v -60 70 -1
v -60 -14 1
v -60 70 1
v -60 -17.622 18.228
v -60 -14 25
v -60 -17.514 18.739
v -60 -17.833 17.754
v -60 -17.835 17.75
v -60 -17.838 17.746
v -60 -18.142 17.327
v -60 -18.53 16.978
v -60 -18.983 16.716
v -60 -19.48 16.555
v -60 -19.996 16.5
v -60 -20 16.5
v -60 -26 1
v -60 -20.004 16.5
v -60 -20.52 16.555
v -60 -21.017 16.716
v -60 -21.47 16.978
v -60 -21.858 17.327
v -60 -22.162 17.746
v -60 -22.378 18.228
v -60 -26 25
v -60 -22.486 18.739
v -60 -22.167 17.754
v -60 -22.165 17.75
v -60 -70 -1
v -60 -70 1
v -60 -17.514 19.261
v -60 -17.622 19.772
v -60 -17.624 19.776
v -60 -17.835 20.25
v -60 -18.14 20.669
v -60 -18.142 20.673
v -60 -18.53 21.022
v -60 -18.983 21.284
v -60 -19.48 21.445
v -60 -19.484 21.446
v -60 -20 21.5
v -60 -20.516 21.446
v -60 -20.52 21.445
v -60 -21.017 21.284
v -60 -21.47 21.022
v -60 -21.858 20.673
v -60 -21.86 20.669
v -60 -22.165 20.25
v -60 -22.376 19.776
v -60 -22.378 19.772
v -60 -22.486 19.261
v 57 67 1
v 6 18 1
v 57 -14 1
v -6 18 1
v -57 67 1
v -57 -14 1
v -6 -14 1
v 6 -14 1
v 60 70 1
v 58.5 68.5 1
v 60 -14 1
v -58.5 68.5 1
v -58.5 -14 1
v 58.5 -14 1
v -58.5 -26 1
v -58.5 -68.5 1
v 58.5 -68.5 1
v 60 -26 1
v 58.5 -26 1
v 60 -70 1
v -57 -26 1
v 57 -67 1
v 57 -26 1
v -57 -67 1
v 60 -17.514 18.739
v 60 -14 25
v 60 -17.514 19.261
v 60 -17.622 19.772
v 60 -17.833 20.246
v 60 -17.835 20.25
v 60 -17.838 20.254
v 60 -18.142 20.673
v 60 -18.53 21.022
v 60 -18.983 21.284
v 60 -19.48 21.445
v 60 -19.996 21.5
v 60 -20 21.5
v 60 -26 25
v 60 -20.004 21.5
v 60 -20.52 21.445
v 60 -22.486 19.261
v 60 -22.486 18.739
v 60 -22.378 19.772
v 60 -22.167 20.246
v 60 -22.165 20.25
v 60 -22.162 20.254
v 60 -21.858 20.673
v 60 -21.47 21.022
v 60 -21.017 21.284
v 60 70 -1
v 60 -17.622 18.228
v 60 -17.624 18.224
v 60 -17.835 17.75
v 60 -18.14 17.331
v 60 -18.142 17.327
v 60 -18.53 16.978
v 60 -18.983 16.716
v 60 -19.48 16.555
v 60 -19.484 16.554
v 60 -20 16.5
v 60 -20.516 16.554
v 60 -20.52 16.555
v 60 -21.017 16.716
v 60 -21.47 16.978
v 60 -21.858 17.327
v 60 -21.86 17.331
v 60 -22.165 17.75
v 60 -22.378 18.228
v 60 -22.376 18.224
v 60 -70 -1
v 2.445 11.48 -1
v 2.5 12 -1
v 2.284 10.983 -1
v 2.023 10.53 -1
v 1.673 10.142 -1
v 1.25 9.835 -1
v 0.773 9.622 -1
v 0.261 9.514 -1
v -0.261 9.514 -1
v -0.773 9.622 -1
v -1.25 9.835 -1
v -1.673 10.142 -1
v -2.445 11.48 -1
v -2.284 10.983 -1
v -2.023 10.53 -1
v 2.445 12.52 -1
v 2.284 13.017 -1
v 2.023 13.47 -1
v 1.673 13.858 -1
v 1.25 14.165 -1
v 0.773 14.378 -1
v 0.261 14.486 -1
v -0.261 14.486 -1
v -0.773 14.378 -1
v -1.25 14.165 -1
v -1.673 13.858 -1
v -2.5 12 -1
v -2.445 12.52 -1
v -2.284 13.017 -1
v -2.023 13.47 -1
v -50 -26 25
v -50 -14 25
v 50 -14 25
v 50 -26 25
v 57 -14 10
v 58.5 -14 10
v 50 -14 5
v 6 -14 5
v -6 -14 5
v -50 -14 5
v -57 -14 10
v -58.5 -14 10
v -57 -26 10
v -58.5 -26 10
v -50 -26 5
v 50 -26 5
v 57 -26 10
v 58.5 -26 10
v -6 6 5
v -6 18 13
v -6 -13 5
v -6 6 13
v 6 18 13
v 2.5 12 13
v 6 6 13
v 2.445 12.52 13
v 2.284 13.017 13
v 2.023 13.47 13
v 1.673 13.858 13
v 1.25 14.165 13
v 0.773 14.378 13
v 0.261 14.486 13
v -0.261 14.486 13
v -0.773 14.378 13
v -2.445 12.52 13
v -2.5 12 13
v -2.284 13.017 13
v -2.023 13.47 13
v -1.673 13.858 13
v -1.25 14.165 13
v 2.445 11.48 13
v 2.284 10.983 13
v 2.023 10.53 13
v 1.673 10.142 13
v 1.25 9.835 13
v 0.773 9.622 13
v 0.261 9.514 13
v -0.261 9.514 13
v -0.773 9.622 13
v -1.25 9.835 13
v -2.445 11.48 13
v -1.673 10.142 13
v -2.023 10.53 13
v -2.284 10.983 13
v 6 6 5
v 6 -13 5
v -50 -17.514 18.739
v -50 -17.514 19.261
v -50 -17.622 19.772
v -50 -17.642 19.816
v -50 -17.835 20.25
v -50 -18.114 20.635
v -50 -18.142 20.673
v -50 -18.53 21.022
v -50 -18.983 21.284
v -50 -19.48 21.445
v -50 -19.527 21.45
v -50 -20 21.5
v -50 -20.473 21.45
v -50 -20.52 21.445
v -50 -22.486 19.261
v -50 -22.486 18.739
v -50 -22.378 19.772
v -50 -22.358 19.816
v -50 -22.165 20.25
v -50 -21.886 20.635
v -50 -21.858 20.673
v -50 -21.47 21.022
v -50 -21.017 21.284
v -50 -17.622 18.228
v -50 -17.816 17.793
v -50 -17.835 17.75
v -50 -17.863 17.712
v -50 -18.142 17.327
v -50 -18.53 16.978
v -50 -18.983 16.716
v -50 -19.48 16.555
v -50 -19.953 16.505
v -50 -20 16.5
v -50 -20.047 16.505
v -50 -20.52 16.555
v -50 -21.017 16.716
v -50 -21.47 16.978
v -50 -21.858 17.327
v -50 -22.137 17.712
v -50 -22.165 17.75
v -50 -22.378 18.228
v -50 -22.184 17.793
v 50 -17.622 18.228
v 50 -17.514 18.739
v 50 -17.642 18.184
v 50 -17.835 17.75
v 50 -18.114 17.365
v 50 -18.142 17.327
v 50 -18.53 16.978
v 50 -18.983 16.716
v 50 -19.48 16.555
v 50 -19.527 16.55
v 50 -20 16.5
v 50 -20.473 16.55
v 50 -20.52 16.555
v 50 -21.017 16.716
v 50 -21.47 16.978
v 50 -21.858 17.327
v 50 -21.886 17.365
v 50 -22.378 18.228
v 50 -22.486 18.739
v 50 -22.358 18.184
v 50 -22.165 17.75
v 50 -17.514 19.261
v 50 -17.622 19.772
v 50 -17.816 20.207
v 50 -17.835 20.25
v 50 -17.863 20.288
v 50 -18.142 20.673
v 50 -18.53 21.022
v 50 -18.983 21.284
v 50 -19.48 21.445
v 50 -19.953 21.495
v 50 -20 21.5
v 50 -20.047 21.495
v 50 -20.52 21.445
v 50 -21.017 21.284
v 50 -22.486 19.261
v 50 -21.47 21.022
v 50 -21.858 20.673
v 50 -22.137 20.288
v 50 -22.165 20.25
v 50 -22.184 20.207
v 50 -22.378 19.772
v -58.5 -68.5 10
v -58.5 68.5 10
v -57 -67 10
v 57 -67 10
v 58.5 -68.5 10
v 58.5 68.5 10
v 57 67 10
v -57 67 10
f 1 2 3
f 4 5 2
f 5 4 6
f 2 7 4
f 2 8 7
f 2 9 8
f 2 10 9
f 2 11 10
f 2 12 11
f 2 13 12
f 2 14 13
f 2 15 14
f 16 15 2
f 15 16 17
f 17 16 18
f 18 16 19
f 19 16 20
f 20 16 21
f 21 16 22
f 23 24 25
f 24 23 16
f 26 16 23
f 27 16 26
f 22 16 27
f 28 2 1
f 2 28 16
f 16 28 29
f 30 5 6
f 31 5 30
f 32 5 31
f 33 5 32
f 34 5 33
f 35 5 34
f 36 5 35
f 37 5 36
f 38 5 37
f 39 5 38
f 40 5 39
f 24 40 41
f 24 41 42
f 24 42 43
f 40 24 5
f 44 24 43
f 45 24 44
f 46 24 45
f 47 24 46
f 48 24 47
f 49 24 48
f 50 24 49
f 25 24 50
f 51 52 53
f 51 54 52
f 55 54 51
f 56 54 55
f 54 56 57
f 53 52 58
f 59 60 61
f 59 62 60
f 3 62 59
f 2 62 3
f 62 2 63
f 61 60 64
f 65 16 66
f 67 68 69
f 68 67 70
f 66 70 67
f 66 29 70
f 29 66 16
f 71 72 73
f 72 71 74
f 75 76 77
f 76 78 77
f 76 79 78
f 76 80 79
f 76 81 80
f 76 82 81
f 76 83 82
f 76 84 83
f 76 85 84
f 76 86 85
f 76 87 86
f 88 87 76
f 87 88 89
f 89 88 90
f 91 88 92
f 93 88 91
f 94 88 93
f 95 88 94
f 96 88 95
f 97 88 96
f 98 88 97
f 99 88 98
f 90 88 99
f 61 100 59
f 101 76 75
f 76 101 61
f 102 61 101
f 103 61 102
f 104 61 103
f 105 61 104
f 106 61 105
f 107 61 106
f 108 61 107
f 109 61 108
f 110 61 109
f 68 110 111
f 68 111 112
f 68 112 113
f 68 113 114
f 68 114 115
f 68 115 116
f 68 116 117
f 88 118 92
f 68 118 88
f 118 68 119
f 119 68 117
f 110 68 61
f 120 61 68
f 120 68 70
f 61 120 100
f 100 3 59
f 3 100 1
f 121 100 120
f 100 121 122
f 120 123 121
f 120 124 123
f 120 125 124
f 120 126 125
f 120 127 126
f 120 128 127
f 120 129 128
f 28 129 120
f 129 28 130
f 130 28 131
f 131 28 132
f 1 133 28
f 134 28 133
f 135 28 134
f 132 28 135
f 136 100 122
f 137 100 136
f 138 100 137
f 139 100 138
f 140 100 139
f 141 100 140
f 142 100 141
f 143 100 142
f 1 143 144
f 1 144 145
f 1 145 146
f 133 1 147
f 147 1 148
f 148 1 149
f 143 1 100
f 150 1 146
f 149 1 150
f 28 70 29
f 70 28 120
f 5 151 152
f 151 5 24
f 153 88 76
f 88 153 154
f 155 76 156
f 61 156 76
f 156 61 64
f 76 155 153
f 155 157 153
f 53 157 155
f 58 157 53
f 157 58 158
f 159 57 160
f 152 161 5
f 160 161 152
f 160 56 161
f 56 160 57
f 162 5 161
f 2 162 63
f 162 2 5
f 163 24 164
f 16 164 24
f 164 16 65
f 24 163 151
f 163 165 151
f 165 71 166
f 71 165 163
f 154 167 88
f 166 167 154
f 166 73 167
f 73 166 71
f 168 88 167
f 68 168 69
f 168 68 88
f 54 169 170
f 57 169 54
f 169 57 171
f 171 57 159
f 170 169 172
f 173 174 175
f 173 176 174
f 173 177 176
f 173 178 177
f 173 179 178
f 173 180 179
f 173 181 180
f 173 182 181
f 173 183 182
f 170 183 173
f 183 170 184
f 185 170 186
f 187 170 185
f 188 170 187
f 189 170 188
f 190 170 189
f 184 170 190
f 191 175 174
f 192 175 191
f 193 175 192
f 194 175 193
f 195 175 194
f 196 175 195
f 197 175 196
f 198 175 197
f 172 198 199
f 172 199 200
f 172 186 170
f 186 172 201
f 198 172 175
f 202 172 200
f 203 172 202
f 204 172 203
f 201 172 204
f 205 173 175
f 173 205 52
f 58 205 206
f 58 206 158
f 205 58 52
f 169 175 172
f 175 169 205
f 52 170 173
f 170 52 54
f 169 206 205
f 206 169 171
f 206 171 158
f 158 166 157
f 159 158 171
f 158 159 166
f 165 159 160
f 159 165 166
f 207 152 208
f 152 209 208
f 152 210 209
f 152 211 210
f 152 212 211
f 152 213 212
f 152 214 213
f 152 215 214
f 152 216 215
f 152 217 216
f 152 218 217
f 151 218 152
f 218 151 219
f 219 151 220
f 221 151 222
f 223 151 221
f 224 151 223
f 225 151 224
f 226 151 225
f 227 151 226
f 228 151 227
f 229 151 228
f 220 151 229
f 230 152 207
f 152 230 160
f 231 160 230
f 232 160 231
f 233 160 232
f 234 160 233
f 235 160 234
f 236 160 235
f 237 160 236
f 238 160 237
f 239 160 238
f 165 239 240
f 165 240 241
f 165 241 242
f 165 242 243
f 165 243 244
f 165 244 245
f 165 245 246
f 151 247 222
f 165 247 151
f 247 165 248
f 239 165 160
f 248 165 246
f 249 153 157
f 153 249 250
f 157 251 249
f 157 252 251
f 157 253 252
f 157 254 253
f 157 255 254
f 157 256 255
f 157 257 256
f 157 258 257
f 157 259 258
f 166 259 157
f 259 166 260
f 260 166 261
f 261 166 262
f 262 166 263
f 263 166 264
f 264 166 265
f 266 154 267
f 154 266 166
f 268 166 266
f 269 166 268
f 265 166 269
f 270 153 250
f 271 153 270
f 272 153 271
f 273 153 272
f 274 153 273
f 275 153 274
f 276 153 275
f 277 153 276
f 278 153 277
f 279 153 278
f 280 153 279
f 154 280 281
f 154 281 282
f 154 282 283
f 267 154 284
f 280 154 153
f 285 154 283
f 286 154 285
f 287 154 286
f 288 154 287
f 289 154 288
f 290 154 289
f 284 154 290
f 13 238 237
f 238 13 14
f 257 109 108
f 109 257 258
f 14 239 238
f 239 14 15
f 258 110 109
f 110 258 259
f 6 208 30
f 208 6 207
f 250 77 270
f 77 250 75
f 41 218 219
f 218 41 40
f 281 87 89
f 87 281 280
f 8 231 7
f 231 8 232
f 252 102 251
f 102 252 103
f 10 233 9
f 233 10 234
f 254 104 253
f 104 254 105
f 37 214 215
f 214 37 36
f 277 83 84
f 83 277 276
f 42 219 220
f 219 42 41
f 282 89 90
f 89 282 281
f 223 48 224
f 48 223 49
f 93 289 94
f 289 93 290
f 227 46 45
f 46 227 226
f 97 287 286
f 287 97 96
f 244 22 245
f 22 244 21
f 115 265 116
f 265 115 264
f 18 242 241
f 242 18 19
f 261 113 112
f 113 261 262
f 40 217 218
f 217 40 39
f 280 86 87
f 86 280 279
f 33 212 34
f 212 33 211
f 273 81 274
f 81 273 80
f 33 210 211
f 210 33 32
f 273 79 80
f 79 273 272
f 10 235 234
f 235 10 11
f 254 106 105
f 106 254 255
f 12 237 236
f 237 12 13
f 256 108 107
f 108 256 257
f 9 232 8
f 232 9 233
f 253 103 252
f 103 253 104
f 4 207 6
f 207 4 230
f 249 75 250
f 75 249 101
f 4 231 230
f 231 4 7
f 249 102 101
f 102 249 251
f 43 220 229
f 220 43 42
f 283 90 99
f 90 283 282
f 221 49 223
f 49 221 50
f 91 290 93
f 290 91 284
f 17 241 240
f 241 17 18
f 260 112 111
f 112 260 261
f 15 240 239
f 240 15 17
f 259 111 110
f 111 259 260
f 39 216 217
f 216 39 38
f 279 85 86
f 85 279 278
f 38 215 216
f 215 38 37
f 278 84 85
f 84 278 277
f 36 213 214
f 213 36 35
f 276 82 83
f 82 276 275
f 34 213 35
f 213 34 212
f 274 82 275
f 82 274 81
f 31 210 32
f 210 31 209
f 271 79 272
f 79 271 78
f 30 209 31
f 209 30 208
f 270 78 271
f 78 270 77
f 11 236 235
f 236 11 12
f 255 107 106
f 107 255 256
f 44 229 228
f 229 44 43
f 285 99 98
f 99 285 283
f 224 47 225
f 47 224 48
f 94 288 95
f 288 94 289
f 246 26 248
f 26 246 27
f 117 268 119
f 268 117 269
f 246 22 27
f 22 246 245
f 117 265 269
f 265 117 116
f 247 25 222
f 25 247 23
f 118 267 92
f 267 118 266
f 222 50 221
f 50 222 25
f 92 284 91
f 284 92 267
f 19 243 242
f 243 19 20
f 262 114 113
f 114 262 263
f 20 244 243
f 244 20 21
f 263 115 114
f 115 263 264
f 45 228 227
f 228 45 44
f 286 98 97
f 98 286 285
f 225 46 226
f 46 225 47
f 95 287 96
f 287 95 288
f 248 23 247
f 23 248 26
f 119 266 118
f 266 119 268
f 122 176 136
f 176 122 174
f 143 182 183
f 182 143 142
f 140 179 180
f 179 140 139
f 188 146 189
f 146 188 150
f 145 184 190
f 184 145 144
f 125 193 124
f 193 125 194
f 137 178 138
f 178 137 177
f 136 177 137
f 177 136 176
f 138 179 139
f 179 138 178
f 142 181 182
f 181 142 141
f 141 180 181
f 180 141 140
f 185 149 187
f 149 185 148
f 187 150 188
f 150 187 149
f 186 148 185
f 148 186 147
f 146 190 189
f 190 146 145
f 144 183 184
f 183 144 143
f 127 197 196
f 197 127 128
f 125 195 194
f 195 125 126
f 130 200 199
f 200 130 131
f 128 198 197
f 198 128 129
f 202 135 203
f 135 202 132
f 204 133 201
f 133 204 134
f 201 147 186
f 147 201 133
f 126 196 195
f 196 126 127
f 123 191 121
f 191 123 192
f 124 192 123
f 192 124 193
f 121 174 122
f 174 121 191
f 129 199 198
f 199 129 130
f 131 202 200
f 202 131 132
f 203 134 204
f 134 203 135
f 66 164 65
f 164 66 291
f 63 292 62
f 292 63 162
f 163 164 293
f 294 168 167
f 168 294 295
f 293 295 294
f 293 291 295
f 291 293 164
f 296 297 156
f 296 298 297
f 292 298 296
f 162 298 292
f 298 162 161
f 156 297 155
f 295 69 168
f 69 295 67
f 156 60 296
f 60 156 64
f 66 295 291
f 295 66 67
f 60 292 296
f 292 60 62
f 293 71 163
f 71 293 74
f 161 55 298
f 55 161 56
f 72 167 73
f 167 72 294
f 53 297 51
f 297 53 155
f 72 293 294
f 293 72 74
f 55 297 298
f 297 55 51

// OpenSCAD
$fn=30;

difference(){

union(){
cube([120,140,2],center=true);
translate([0,-20,13])
cube([120,12,24],center=true);
translate([0,12,7])
cube([12,12,12],center=true);
translate([0,-4,2.5])
cube([12,25,5],center=true);
}

translate([0,-20,19])
cube([100,14,28],center=true);
translate([0,-20,19])rotate([0,90,0])
cylinder(d=5,h=122,center=true);
translate([0,12,7])
cylinder(d=5,h=20,center=true);

}

translate([0,0,5])
difference(){
cube([117,137,10],center=true);
cube([114,134,22],center=true);
}  
